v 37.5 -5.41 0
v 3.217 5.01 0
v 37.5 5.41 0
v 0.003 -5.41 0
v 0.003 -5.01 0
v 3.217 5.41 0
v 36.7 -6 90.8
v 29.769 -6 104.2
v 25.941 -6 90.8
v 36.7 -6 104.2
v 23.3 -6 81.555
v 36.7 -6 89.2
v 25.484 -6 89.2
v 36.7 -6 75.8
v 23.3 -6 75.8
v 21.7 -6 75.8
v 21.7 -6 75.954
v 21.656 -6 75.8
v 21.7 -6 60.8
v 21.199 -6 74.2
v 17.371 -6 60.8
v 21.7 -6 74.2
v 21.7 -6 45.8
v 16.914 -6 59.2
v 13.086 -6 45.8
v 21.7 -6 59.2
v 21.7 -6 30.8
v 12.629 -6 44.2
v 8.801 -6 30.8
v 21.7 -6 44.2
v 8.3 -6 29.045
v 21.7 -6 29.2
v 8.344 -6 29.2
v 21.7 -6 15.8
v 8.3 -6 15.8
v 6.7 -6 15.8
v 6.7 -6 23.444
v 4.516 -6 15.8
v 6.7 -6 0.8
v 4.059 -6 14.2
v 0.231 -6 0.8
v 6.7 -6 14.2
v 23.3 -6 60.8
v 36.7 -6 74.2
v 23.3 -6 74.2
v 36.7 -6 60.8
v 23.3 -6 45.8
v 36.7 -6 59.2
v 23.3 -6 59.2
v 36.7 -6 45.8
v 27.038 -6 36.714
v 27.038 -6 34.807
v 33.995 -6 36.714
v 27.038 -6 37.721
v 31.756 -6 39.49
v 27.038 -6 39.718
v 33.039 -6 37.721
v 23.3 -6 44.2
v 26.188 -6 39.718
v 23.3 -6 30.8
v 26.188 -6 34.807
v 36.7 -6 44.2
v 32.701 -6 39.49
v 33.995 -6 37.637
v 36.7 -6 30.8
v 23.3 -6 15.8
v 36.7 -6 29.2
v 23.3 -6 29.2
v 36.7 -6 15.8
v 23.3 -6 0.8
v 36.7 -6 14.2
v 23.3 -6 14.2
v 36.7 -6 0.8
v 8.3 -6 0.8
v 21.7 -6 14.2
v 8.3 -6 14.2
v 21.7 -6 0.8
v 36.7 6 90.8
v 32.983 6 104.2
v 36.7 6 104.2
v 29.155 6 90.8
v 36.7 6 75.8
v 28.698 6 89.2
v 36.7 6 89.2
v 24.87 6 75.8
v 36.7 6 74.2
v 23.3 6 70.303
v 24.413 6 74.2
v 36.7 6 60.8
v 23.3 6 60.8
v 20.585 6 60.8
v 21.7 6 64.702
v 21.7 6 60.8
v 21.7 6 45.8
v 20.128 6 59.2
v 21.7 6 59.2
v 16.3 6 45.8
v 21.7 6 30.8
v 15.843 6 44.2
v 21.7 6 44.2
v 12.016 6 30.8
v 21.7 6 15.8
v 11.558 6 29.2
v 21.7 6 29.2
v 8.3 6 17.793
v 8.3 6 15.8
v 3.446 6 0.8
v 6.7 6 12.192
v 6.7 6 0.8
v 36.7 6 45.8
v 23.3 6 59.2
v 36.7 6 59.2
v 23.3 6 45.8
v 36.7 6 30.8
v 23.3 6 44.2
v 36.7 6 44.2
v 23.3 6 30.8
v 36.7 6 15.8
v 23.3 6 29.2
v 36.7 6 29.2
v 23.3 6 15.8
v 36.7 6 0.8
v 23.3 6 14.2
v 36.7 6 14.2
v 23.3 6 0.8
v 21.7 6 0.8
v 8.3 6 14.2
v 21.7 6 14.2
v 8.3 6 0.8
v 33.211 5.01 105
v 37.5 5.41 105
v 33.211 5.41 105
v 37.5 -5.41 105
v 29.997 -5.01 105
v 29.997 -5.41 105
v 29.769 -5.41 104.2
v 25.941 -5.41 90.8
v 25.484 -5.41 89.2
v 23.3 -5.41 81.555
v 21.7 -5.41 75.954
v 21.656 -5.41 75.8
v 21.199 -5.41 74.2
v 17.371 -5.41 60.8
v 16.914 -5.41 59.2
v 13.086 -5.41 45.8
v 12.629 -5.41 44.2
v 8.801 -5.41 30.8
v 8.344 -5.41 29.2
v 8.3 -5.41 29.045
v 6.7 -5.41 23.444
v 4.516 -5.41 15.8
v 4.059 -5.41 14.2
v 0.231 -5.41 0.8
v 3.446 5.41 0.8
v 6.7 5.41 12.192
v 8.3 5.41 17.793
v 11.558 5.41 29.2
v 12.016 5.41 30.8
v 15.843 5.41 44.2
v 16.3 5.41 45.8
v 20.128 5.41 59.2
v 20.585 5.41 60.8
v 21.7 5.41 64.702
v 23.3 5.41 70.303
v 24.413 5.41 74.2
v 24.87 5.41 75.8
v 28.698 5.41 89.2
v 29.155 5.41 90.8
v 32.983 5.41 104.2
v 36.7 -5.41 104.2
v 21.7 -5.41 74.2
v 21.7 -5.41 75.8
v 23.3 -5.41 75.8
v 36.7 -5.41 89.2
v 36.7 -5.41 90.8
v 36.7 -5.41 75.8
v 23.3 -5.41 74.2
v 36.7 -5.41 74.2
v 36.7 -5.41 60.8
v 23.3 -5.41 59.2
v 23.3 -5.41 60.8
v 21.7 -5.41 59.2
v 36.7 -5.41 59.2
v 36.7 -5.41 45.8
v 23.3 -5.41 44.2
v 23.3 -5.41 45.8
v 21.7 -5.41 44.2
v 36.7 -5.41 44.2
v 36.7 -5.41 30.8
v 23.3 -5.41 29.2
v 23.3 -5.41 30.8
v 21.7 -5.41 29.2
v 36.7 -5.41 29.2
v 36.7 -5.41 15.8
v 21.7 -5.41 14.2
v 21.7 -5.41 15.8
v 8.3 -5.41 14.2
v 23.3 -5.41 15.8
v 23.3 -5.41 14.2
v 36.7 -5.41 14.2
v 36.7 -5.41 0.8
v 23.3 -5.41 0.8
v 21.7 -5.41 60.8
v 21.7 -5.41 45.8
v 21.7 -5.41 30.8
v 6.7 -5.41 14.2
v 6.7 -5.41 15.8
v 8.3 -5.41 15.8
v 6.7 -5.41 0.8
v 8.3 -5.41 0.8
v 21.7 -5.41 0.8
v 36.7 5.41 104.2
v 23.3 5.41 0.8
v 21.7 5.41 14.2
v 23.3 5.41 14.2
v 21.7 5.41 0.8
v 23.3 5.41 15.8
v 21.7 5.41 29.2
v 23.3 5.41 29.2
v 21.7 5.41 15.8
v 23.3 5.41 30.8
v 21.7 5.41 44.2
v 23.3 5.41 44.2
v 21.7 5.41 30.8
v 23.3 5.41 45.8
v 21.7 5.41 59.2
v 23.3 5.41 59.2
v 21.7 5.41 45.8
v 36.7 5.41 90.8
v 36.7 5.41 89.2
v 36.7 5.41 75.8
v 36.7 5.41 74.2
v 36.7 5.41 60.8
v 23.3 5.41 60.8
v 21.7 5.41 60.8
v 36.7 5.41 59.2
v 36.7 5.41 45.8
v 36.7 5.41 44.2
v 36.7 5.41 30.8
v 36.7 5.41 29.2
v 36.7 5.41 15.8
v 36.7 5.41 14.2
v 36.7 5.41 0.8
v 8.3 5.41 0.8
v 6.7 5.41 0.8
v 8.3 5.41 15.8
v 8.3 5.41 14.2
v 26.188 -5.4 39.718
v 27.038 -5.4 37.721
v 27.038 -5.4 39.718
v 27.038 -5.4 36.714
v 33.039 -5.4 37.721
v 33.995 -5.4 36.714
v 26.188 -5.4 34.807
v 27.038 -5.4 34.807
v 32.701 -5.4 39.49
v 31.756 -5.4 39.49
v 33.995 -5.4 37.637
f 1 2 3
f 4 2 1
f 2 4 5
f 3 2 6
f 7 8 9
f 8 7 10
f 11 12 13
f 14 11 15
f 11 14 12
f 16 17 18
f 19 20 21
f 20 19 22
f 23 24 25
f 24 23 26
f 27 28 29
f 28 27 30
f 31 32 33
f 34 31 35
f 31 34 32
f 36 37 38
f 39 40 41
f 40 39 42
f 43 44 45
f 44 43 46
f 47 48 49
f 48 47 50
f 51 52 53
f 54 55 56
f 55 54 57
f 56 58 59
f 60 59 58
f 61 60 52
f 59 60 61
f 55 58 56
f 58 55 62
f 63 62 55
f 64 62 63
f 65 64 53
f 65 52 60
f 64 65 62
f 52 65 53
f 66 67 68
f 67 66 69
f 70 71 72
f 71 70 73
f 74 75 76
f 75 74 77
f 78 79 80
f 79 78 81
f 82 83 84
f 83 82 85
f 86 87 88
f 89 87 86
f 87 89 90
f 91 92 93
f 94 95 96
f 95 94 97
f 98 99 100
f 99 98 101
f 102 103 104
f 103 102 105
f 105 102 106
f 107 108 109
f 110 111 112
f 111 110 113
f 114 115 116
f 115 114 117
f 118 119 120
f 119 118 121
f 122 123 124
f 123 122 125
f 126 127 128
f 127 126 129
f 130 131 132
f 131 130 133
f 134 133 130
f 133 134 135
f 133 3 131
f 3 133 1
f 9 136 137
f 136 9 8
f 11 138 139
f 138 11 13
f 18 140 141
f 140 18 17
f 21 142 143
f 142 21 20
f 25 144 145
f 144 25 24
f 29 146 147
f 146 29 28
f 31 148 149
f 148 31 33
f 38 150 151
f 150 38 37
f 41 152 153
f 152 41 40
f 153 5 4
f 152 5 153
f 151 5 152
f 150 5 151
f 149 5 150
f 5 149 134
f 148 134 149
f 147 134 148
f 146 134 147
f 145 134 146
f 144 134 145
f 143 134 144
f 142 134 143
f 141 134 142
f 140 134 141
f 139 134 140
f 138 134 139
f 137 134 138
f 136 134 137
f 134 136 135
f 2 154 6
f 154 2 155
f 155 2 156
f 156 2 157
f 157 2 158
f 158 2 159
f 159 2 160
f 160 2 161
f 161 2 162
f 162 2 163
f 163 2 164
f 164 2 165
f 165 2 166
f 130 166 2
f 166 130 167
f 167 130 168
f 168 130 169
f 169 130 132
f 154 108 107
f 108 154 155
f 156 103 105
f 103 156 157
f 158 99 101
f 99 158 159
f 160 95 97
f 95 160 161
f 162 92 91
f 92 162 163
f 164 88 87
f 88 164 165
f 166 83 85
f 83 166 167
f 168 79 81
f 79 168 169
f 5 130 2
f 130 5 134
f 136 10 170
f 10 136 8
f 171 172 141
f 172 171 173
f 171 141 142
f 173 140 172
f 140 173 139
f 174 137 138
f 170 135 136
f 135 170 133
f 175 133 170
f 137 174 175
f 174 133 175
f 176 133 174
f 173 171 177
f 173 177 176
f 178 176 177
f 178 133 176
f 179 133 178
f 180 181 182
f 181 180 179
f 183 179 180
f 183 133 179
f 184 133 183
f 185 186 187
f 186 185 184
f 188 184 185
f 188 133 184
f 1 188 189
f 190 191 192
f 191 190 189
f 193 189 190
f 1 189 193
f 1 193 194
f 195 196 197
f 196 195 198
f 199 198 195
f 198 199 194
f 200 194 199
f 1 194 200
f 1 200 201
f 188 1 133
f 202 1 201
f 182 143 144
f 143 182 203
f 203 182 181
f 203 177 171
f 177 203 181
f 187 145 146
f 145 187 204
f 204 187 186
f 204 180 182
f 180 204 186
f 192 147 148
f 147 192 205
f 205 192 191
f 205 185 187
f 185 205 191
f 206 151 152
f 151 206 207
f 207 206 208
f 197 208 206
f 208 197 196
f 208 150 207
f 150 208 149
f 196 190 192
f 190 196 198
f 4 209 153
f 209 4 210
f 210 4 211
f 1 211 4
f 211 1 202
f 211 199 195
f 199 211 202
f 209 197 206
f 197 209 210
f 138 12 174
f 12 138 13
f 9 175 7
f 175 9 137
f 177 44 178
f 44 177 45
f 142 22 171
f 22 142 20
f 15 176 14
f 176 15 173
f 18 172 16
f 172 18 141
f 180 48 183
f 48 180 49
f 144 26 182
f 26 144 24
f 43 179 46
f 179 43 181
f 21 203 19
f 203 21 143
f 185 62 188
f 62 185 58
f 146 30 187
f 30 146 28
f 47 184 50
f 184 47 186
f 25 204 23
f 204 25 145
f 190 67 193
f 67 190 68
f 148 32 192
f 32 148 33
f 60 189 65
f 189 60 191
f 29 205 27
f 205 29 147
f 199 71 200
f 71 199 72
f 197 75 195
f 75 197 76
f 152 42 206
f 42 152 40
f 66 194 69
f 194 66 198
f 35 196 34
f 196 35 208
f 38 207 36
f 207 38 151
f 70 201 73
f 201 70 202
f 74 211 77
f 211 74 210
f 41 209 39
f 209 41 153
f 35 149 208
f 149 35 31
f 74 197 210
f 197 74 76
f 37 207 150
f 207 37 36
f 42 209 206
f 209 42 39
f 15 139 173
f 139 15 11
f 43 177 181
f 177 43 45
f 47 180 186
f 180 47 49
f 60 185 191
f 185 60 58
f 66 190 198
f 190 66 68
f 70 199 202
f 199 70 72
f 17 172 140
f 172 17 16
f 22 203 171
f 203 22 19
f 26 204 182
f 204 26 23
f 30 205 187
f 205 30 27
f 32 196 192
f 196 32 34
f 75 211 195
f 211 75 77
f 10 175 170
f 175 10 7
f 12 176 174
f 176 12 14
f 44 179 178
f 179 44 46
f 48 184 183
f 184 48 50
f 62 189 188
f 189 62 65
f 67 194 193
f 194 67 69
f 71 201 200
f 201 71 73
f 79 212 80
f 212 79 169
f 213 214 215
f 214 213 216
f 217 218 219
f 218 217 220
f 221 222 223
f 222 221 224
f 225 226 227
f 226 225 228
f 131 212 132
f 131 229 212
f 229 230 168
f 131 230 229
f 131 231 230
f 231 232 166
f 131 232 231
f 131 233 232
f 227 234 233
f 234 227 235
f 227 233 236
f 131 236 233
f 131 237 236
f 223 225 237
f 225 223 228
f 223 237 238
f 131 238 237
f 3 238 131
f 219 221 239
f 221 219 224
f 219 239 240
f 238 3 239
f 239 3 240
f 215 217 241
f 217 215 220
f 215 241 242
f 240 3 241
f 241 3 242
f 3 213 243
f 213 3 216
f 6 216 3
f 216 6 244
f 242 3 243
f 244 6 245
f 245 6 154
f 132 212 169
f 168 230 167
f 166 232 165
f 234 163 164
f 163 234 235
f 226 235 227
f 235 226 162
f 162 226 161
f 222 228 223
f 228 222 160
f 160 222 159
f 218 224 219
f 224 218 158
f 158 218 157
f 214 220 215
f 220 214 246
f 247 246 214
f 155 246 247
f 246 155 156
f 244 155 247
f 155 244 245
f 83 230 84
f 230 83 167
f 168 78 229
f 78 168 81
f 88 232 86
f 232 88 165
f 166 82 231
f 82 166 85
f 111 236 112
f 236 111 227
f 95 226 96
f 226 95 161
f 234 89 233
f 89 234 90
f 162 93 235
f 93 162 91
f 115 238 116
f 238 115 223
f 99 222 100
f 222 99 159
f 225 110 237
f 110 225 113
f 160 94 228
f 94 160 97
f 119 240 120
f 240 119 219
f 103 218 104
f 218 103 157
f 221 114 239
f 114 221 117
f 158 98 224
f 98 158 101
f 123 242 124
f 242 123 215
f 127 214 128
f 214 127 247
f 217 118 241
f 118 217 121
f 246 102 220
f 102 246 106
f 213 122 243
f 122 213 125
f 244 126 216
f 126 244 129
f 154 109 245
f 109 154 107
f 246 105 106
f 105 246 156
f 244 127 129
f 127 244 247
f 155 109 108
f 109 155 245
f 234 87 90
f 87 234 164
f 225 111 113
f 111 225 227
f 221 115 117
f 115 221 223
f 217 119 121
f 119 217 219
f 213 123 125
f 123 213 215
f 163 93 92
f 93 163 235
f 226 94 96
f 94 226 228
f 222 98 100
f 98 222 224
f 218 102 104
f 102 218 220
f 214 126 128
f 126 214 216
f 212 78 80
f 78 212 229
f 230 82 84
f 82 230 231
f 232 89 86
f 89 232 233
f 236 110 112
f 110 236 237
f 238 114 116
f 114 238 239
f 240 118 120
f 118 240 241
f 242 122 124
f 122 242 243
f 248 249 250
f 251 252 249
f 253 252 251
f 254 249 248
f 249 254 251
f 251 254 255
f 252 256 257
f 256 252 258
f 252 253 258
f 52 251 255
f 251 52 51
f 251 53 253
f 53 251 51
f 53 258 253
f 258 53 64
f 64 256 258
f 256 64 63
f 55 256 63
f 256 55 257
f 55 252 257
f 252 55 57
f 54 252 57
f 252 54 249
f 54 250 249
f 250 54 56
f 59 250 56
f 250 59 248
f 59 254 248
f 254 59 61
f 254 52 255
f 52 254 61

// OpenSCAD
/*

  puzzle_part_1.scad

  Winston Freer Tile Puzzle: Part 1
      
  (c) olikraus@gmail.com

  This work is licensed under the Creative Commons Attribution-NonCommercial-ShareAlike 4.0 International License. 
  To view a copy of this license, visit http://creativecommons.org/licenses/by-nc-sa/4.0/.
    
*/

include <winston_freer.scad>;


rotate([0,90,-90])
translate([-7*ts,-6.5*ts,0])
part1();
